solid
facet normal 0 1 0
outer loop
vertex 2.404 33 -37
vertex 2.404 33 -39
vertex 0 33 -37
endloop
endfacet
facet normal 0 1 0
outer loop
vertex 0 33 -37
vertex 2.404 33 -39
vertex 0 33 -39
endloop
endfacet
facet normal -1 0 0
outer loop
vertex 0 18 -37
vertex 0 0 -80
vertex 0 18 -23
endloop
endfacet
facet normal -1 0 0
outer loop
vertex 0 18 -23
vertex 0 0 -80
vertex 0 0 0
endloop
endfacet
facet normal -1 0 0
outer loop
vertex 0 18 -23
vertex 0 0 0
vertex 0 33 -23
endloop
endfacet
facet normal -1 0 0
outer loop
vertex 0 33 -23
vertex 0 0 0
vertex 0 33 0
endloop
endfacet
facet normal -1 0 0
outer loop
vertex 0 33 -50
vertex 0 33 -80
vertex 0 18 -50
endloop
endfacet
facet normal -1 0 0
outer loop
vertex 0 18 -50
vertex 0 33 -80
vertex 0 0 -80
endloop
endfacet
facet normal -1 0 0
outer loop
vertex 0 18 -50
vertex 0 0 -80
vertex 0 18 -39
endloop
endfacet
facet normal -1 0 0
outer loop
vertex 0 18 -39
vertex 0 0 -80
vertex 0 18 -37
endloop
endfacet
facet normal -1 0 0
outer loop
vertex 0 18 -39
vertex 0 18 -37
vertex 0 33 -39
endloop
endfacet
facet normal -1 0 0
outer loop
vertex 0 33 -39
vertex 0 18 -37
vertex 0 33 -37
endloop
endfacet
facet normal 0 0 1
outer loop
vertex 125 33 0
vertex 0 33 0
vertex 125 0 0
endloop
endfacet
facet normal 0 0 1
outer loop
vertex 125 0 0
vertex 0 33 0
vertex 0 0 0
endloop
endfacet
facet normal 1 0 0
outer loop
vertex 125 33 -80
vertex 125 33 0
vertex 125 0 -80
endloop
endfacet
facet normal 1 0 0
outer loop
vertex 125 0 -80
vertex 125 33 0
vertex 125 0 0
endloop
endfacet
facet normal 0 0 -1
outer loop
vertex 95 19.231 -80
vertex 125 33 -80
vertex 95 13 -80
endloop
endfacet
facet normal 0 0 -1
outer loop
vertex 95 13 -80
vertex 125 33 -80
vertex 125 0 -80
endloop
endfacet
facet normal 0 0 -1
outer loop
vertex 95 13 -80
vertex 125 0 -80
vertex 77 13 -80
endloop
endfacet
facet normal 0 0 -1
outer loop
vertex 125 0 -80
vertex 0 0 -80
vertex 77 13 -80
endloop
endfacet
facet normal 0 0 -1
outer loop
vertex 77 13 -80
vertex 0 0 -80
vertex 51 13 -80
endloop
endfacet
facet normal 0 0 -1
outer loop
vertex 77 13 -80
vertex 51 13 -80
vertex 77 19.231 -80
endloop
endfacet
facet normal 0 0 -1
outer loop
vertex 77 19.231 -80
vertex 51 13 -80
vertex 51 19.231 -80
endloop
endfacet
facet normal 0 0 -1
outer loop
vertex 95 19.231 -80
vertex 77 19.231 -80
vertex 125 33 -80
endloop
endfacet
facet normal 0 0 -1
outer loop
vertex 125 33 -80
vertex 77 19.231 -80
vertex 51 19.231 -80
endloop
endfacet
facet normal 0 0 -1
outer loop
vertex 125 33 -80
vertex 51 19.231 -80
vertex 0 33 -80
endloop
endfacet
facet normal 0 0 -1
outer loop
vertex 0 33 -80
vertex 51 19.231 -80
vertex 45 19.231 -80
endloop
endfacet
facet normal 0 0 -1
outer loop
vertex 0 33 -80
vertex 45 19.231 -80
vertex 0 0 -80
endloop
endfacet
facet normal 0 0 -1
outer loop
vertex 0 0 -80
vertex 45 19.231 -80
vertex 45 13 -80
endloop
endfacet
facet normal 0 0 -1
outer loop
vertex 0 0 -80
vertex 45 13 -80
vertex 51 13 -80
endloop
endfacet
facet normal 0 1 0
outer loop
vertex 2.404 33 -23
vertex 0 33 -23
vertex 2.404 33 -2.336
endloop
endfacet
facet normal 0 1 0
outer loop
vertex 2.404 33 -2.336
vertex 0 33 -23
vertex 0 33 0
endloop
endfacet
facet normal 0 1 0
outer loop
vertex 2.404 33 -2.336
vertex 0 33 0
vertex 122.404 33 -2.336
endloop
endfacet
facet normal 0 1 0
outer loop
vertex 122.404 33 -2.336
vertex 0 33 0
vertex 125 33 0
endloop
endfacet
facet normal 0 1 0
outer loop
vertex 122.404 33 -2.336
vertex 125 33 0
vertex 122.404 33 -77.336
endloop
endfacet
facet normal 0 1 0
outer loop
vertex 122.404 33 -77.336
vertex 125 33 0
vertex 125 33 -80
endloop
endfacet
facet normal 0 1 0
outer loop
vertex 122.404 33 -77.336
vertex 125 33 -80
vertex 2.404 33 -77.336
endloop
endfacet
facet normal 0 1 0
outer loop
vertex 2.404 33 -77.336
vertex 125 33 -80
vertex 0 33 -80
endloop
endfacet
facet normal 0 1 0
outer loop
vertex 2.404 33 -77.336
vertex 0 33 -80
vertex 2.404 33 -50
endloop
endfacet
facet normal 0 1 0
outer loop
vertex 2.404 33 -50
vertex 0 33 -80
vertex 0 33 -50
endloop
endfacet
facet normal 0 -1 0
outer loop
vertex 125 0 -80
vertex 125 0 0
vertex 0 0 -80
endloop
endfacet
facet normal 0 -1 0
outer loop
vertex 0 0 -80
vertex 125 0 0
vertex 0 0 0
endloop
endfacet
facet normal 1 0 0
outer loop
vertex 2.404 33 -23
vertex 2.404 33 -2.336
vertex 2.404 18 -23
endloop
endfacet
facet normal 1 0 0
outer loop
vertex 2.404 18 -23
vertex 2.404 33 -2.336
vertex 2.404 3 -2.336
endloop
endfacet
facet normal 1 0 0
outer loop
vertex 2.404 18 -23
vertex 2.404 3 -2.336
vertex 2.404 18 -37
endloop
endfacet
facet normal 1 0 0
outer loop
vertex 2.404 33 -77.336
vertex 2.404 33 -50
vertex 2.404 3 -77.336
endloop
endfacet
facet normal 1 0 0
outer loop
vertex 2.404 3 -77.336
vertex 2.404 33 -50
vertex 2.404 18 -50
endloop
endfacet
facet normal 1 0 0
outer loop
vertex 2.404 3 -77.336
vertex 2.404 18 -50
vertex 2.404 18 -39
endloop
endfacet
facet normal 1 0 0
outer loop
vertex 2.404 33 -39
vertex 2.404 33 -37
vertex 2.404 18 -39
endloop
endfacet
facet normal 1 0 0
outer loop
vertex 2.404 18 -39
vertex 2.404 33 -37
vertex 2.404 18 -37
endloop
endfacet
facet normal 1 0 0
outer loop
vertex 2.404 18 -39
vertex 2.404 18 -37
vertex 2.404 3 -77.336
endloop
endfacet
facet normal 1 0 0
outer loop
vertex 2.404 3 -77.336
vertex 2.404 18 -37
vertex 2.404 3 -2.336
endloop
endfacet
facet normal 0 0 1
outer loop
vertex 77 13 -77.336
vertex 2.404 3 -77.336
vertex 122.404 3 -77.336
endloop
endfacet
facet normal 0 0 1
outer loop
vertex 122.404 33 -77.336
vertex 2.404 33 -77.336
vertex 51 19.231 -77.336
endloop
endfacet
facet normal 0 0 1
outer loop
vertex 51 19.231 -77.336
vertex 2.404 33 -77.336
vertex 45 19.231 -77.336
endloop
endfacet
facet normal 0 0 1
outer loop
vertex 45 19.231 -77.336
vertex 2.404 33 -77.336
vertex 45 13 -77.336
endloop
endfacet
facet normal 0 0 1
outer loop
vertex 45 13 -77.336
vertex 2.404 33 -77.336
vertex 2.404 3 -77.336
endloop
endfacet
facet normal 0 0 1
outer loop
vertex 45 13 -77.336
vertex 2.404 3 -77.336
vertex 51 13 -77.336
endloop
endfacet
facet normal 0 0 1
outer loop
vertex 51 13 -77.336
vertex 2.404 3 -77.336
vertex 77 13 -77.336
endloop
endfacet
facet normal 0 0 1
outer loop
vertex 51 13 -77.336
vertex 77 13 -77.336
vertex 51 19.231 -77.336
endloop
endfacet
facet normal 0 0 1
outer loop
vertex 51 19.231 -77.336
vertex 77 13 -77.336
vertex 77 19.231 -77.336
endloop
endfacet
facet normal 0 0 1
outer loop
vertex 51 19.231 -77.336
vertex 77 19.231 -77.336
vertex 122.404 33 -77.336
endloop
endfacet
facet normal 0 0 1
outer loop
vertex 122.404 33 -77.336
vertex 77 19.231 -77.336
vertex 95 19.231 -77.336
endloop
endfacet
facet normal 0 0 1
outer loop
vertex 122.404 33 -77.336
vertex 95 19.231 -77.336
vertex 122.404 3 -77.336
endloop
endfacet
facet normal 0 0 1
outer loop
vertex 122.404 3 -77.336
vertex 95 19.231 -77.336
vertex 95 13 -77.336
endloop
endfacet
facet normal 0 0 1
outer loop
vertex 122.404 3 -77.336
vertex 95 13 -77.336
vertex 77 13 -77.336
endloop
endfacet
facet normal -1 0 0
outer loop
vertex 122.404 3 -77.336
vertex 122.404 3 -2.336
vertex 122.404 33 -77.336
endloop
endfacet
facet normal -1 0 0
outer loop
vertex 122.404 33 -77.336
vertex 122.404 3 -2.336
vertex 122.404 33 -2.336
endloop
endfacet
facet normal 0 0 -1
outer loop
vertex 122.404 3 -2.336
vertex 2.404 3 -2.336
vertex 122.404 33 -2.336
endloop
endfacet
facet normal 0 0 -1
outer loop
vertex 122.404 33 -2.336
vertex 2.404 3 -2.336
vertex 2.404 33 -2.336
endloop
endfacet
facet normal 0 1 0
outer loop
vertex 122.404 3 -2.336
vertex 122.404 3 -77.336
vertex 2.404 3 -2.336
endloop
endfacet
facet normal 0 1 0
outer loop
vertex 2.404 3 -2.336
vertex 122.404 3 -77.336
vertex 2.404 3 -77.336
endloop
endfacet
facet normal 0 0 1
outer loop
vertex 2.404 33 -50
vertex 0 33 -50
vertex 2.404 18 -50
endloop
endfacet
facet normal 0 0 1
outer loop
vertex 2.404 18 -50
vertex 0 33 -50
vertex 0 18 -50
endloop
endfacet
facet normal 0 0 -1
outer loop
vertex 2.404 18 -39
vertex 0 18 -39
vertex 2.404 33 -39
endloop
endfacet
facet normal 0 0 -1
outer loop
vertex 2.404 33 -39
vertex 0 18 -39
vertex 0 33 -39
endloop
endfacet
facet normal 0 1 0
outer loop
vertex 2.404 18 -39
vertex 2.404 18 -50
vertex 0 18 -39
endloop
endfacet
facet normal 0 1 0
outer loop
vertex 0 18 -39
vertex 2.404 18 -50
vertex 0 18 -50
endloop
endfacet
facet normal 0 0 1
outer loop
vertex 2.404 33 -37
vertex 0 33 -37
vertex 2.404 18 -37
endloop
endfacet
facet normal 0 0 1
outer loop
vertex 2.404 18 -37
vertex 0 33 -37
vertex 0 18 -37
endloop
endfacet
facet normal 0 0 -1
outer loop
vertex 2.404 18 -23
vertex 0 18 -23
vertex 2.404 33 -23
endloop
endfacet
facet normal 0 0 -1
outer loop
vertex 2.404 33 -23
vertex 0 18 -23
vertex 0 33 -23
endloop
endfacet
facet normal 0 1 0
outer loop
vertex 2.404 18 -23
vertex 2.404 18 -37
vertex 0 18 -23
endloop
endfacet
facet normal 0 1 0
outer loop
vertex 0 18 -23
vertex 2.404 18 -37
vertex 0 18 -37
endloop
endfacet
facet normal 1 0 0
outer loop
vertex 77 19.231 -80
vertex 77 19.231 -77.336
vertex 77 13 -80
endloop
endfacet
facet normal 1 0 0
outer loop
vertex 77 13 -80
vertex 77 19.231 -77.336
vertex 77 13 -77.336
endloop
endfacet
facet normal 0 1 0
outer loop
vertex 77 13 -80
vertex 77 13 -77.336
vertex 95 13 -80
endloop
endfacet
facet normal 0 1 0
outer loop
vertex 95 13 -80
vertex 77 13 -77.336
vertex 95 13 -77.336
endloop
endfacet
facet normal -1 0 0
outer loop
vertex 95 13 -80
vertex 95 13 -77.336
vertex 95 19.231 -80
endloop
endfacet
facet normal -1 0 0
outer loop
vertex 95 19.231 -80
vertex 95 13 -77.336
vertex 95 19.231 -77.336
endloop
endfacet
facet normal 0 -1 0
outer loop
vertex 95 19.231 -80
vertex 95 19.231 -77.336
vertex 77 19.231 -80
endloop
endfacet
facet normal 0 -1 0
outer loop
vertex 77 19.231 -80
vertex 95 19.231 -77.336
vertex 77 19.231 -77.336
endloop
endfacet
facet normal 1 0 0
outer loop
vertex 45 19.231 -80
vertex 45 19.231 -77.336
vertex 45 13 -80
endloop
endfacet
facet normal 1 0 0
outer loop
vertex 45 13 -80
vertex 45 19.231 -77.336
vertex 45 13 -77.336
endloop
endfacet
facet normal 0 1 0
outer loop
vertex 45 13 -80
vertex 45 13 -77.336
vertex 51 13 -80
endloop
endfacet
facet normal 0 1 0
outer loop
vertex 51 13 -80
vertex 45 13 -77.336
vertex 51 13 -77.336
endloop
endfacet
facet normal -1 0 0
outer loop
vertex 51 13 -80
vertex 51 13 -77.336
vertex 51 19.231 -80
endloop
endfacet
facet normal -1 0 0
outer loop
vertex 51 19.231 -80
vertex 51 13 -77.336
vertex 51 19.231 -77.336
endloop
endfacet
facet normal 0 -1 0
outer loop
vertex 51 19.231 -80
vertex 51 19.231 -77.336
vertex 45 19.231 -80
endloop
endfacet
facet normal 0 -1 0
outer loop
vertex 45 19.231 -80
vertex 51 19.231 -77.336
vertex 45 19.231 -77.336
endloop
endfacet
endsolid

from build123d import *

# Parameters (mm, degrees)
SKETCH1_W           = 125
SKETCH1_H           = 80
BOSS_EXTRUDE1_DEPTH = 33
SKETCH3_W           = 120
SKETCH3_H           = 75
CUT_EXTRUDE1_DEPTH  = 30
SKETCH6_W           = 14.123986893
SKETCH6_H           = 14
SKETCH6_W_2         = 13.154693674
SKETCH6_H_2         = 11
CUT_EXTRUDE4_DEPTH  = 15
SKETCH7_W           = 6
SKETCH7_H           = 6.231170688
SKETCH7_W_2         = 18
CUT_EXTRUDE5_DEPTH  = 15


with BuildPart() as part:
    # Sketch1 → Boss-Extrude1 (new body)
    with BuildSketch(Plane(origin=(0, 0, 0), x_dir=(1, 0, 0), z_dir=(0, 1, 0))):
        with Locations((62.5, 40)):
            Rectangle(SKETCH1_W, SKETCH1_H)
    extrude(amount=BOSS_EXTRUDE1_DEPTH)

    # Sketch3 → Cut-Extrude1 (cut)
    with BuildSketch(Plane(origin=(0, 33, 0), x_dir=(1, 0, 0), z_dir=(0, 1, 0))):
        with Locations((62.403820475, 39.836034952)):
            Rectangle(SKETCH3_W, SKETCH3_H)
    extrude(amount=-CUT_EXTRUDE1_DEPTH, mode=Mode.SUBTRACT)

    # Sketch6 → Cut-Extrude4 (cut)
    with BuildSketch(Plane(origin=(0, 33, 0), x_dir=(1, 0, 0), z_dir=(0, 1, 0))):
        with Locations((0.880645417, 30)):
            Rectangle(SKETCH6_W, SKETCH6_H)
        with Locations((1.365292027, 44.5)):
            Rectangle(SKETCH6_W_2, SKETCH6_H_2)
    extrude(amount=-CUT_EXTRUDE4_DEPTH, mode=Mode.SUBTRACT)

    # Sketch7 → Cut-Extrude5 (cut)
    with BuildSketch(Plane(origin=(0, 0, -80), x_dir=(-1, 0, 0), z_dir=(0, 0, -1))):
        with Locations((-48, 16.115585344)):
            Rectangle(SKETCH7_W, SKETCH7_H)
        with Locations((-86, 16.115585344)):
            Rectangle(SKETCH7_W_2, SKETCH7_H)
    extrude(amount=-CUT_EXTRUDE5_DEPTH, mode=Mode.SUBTRACT)


solid = part.part
